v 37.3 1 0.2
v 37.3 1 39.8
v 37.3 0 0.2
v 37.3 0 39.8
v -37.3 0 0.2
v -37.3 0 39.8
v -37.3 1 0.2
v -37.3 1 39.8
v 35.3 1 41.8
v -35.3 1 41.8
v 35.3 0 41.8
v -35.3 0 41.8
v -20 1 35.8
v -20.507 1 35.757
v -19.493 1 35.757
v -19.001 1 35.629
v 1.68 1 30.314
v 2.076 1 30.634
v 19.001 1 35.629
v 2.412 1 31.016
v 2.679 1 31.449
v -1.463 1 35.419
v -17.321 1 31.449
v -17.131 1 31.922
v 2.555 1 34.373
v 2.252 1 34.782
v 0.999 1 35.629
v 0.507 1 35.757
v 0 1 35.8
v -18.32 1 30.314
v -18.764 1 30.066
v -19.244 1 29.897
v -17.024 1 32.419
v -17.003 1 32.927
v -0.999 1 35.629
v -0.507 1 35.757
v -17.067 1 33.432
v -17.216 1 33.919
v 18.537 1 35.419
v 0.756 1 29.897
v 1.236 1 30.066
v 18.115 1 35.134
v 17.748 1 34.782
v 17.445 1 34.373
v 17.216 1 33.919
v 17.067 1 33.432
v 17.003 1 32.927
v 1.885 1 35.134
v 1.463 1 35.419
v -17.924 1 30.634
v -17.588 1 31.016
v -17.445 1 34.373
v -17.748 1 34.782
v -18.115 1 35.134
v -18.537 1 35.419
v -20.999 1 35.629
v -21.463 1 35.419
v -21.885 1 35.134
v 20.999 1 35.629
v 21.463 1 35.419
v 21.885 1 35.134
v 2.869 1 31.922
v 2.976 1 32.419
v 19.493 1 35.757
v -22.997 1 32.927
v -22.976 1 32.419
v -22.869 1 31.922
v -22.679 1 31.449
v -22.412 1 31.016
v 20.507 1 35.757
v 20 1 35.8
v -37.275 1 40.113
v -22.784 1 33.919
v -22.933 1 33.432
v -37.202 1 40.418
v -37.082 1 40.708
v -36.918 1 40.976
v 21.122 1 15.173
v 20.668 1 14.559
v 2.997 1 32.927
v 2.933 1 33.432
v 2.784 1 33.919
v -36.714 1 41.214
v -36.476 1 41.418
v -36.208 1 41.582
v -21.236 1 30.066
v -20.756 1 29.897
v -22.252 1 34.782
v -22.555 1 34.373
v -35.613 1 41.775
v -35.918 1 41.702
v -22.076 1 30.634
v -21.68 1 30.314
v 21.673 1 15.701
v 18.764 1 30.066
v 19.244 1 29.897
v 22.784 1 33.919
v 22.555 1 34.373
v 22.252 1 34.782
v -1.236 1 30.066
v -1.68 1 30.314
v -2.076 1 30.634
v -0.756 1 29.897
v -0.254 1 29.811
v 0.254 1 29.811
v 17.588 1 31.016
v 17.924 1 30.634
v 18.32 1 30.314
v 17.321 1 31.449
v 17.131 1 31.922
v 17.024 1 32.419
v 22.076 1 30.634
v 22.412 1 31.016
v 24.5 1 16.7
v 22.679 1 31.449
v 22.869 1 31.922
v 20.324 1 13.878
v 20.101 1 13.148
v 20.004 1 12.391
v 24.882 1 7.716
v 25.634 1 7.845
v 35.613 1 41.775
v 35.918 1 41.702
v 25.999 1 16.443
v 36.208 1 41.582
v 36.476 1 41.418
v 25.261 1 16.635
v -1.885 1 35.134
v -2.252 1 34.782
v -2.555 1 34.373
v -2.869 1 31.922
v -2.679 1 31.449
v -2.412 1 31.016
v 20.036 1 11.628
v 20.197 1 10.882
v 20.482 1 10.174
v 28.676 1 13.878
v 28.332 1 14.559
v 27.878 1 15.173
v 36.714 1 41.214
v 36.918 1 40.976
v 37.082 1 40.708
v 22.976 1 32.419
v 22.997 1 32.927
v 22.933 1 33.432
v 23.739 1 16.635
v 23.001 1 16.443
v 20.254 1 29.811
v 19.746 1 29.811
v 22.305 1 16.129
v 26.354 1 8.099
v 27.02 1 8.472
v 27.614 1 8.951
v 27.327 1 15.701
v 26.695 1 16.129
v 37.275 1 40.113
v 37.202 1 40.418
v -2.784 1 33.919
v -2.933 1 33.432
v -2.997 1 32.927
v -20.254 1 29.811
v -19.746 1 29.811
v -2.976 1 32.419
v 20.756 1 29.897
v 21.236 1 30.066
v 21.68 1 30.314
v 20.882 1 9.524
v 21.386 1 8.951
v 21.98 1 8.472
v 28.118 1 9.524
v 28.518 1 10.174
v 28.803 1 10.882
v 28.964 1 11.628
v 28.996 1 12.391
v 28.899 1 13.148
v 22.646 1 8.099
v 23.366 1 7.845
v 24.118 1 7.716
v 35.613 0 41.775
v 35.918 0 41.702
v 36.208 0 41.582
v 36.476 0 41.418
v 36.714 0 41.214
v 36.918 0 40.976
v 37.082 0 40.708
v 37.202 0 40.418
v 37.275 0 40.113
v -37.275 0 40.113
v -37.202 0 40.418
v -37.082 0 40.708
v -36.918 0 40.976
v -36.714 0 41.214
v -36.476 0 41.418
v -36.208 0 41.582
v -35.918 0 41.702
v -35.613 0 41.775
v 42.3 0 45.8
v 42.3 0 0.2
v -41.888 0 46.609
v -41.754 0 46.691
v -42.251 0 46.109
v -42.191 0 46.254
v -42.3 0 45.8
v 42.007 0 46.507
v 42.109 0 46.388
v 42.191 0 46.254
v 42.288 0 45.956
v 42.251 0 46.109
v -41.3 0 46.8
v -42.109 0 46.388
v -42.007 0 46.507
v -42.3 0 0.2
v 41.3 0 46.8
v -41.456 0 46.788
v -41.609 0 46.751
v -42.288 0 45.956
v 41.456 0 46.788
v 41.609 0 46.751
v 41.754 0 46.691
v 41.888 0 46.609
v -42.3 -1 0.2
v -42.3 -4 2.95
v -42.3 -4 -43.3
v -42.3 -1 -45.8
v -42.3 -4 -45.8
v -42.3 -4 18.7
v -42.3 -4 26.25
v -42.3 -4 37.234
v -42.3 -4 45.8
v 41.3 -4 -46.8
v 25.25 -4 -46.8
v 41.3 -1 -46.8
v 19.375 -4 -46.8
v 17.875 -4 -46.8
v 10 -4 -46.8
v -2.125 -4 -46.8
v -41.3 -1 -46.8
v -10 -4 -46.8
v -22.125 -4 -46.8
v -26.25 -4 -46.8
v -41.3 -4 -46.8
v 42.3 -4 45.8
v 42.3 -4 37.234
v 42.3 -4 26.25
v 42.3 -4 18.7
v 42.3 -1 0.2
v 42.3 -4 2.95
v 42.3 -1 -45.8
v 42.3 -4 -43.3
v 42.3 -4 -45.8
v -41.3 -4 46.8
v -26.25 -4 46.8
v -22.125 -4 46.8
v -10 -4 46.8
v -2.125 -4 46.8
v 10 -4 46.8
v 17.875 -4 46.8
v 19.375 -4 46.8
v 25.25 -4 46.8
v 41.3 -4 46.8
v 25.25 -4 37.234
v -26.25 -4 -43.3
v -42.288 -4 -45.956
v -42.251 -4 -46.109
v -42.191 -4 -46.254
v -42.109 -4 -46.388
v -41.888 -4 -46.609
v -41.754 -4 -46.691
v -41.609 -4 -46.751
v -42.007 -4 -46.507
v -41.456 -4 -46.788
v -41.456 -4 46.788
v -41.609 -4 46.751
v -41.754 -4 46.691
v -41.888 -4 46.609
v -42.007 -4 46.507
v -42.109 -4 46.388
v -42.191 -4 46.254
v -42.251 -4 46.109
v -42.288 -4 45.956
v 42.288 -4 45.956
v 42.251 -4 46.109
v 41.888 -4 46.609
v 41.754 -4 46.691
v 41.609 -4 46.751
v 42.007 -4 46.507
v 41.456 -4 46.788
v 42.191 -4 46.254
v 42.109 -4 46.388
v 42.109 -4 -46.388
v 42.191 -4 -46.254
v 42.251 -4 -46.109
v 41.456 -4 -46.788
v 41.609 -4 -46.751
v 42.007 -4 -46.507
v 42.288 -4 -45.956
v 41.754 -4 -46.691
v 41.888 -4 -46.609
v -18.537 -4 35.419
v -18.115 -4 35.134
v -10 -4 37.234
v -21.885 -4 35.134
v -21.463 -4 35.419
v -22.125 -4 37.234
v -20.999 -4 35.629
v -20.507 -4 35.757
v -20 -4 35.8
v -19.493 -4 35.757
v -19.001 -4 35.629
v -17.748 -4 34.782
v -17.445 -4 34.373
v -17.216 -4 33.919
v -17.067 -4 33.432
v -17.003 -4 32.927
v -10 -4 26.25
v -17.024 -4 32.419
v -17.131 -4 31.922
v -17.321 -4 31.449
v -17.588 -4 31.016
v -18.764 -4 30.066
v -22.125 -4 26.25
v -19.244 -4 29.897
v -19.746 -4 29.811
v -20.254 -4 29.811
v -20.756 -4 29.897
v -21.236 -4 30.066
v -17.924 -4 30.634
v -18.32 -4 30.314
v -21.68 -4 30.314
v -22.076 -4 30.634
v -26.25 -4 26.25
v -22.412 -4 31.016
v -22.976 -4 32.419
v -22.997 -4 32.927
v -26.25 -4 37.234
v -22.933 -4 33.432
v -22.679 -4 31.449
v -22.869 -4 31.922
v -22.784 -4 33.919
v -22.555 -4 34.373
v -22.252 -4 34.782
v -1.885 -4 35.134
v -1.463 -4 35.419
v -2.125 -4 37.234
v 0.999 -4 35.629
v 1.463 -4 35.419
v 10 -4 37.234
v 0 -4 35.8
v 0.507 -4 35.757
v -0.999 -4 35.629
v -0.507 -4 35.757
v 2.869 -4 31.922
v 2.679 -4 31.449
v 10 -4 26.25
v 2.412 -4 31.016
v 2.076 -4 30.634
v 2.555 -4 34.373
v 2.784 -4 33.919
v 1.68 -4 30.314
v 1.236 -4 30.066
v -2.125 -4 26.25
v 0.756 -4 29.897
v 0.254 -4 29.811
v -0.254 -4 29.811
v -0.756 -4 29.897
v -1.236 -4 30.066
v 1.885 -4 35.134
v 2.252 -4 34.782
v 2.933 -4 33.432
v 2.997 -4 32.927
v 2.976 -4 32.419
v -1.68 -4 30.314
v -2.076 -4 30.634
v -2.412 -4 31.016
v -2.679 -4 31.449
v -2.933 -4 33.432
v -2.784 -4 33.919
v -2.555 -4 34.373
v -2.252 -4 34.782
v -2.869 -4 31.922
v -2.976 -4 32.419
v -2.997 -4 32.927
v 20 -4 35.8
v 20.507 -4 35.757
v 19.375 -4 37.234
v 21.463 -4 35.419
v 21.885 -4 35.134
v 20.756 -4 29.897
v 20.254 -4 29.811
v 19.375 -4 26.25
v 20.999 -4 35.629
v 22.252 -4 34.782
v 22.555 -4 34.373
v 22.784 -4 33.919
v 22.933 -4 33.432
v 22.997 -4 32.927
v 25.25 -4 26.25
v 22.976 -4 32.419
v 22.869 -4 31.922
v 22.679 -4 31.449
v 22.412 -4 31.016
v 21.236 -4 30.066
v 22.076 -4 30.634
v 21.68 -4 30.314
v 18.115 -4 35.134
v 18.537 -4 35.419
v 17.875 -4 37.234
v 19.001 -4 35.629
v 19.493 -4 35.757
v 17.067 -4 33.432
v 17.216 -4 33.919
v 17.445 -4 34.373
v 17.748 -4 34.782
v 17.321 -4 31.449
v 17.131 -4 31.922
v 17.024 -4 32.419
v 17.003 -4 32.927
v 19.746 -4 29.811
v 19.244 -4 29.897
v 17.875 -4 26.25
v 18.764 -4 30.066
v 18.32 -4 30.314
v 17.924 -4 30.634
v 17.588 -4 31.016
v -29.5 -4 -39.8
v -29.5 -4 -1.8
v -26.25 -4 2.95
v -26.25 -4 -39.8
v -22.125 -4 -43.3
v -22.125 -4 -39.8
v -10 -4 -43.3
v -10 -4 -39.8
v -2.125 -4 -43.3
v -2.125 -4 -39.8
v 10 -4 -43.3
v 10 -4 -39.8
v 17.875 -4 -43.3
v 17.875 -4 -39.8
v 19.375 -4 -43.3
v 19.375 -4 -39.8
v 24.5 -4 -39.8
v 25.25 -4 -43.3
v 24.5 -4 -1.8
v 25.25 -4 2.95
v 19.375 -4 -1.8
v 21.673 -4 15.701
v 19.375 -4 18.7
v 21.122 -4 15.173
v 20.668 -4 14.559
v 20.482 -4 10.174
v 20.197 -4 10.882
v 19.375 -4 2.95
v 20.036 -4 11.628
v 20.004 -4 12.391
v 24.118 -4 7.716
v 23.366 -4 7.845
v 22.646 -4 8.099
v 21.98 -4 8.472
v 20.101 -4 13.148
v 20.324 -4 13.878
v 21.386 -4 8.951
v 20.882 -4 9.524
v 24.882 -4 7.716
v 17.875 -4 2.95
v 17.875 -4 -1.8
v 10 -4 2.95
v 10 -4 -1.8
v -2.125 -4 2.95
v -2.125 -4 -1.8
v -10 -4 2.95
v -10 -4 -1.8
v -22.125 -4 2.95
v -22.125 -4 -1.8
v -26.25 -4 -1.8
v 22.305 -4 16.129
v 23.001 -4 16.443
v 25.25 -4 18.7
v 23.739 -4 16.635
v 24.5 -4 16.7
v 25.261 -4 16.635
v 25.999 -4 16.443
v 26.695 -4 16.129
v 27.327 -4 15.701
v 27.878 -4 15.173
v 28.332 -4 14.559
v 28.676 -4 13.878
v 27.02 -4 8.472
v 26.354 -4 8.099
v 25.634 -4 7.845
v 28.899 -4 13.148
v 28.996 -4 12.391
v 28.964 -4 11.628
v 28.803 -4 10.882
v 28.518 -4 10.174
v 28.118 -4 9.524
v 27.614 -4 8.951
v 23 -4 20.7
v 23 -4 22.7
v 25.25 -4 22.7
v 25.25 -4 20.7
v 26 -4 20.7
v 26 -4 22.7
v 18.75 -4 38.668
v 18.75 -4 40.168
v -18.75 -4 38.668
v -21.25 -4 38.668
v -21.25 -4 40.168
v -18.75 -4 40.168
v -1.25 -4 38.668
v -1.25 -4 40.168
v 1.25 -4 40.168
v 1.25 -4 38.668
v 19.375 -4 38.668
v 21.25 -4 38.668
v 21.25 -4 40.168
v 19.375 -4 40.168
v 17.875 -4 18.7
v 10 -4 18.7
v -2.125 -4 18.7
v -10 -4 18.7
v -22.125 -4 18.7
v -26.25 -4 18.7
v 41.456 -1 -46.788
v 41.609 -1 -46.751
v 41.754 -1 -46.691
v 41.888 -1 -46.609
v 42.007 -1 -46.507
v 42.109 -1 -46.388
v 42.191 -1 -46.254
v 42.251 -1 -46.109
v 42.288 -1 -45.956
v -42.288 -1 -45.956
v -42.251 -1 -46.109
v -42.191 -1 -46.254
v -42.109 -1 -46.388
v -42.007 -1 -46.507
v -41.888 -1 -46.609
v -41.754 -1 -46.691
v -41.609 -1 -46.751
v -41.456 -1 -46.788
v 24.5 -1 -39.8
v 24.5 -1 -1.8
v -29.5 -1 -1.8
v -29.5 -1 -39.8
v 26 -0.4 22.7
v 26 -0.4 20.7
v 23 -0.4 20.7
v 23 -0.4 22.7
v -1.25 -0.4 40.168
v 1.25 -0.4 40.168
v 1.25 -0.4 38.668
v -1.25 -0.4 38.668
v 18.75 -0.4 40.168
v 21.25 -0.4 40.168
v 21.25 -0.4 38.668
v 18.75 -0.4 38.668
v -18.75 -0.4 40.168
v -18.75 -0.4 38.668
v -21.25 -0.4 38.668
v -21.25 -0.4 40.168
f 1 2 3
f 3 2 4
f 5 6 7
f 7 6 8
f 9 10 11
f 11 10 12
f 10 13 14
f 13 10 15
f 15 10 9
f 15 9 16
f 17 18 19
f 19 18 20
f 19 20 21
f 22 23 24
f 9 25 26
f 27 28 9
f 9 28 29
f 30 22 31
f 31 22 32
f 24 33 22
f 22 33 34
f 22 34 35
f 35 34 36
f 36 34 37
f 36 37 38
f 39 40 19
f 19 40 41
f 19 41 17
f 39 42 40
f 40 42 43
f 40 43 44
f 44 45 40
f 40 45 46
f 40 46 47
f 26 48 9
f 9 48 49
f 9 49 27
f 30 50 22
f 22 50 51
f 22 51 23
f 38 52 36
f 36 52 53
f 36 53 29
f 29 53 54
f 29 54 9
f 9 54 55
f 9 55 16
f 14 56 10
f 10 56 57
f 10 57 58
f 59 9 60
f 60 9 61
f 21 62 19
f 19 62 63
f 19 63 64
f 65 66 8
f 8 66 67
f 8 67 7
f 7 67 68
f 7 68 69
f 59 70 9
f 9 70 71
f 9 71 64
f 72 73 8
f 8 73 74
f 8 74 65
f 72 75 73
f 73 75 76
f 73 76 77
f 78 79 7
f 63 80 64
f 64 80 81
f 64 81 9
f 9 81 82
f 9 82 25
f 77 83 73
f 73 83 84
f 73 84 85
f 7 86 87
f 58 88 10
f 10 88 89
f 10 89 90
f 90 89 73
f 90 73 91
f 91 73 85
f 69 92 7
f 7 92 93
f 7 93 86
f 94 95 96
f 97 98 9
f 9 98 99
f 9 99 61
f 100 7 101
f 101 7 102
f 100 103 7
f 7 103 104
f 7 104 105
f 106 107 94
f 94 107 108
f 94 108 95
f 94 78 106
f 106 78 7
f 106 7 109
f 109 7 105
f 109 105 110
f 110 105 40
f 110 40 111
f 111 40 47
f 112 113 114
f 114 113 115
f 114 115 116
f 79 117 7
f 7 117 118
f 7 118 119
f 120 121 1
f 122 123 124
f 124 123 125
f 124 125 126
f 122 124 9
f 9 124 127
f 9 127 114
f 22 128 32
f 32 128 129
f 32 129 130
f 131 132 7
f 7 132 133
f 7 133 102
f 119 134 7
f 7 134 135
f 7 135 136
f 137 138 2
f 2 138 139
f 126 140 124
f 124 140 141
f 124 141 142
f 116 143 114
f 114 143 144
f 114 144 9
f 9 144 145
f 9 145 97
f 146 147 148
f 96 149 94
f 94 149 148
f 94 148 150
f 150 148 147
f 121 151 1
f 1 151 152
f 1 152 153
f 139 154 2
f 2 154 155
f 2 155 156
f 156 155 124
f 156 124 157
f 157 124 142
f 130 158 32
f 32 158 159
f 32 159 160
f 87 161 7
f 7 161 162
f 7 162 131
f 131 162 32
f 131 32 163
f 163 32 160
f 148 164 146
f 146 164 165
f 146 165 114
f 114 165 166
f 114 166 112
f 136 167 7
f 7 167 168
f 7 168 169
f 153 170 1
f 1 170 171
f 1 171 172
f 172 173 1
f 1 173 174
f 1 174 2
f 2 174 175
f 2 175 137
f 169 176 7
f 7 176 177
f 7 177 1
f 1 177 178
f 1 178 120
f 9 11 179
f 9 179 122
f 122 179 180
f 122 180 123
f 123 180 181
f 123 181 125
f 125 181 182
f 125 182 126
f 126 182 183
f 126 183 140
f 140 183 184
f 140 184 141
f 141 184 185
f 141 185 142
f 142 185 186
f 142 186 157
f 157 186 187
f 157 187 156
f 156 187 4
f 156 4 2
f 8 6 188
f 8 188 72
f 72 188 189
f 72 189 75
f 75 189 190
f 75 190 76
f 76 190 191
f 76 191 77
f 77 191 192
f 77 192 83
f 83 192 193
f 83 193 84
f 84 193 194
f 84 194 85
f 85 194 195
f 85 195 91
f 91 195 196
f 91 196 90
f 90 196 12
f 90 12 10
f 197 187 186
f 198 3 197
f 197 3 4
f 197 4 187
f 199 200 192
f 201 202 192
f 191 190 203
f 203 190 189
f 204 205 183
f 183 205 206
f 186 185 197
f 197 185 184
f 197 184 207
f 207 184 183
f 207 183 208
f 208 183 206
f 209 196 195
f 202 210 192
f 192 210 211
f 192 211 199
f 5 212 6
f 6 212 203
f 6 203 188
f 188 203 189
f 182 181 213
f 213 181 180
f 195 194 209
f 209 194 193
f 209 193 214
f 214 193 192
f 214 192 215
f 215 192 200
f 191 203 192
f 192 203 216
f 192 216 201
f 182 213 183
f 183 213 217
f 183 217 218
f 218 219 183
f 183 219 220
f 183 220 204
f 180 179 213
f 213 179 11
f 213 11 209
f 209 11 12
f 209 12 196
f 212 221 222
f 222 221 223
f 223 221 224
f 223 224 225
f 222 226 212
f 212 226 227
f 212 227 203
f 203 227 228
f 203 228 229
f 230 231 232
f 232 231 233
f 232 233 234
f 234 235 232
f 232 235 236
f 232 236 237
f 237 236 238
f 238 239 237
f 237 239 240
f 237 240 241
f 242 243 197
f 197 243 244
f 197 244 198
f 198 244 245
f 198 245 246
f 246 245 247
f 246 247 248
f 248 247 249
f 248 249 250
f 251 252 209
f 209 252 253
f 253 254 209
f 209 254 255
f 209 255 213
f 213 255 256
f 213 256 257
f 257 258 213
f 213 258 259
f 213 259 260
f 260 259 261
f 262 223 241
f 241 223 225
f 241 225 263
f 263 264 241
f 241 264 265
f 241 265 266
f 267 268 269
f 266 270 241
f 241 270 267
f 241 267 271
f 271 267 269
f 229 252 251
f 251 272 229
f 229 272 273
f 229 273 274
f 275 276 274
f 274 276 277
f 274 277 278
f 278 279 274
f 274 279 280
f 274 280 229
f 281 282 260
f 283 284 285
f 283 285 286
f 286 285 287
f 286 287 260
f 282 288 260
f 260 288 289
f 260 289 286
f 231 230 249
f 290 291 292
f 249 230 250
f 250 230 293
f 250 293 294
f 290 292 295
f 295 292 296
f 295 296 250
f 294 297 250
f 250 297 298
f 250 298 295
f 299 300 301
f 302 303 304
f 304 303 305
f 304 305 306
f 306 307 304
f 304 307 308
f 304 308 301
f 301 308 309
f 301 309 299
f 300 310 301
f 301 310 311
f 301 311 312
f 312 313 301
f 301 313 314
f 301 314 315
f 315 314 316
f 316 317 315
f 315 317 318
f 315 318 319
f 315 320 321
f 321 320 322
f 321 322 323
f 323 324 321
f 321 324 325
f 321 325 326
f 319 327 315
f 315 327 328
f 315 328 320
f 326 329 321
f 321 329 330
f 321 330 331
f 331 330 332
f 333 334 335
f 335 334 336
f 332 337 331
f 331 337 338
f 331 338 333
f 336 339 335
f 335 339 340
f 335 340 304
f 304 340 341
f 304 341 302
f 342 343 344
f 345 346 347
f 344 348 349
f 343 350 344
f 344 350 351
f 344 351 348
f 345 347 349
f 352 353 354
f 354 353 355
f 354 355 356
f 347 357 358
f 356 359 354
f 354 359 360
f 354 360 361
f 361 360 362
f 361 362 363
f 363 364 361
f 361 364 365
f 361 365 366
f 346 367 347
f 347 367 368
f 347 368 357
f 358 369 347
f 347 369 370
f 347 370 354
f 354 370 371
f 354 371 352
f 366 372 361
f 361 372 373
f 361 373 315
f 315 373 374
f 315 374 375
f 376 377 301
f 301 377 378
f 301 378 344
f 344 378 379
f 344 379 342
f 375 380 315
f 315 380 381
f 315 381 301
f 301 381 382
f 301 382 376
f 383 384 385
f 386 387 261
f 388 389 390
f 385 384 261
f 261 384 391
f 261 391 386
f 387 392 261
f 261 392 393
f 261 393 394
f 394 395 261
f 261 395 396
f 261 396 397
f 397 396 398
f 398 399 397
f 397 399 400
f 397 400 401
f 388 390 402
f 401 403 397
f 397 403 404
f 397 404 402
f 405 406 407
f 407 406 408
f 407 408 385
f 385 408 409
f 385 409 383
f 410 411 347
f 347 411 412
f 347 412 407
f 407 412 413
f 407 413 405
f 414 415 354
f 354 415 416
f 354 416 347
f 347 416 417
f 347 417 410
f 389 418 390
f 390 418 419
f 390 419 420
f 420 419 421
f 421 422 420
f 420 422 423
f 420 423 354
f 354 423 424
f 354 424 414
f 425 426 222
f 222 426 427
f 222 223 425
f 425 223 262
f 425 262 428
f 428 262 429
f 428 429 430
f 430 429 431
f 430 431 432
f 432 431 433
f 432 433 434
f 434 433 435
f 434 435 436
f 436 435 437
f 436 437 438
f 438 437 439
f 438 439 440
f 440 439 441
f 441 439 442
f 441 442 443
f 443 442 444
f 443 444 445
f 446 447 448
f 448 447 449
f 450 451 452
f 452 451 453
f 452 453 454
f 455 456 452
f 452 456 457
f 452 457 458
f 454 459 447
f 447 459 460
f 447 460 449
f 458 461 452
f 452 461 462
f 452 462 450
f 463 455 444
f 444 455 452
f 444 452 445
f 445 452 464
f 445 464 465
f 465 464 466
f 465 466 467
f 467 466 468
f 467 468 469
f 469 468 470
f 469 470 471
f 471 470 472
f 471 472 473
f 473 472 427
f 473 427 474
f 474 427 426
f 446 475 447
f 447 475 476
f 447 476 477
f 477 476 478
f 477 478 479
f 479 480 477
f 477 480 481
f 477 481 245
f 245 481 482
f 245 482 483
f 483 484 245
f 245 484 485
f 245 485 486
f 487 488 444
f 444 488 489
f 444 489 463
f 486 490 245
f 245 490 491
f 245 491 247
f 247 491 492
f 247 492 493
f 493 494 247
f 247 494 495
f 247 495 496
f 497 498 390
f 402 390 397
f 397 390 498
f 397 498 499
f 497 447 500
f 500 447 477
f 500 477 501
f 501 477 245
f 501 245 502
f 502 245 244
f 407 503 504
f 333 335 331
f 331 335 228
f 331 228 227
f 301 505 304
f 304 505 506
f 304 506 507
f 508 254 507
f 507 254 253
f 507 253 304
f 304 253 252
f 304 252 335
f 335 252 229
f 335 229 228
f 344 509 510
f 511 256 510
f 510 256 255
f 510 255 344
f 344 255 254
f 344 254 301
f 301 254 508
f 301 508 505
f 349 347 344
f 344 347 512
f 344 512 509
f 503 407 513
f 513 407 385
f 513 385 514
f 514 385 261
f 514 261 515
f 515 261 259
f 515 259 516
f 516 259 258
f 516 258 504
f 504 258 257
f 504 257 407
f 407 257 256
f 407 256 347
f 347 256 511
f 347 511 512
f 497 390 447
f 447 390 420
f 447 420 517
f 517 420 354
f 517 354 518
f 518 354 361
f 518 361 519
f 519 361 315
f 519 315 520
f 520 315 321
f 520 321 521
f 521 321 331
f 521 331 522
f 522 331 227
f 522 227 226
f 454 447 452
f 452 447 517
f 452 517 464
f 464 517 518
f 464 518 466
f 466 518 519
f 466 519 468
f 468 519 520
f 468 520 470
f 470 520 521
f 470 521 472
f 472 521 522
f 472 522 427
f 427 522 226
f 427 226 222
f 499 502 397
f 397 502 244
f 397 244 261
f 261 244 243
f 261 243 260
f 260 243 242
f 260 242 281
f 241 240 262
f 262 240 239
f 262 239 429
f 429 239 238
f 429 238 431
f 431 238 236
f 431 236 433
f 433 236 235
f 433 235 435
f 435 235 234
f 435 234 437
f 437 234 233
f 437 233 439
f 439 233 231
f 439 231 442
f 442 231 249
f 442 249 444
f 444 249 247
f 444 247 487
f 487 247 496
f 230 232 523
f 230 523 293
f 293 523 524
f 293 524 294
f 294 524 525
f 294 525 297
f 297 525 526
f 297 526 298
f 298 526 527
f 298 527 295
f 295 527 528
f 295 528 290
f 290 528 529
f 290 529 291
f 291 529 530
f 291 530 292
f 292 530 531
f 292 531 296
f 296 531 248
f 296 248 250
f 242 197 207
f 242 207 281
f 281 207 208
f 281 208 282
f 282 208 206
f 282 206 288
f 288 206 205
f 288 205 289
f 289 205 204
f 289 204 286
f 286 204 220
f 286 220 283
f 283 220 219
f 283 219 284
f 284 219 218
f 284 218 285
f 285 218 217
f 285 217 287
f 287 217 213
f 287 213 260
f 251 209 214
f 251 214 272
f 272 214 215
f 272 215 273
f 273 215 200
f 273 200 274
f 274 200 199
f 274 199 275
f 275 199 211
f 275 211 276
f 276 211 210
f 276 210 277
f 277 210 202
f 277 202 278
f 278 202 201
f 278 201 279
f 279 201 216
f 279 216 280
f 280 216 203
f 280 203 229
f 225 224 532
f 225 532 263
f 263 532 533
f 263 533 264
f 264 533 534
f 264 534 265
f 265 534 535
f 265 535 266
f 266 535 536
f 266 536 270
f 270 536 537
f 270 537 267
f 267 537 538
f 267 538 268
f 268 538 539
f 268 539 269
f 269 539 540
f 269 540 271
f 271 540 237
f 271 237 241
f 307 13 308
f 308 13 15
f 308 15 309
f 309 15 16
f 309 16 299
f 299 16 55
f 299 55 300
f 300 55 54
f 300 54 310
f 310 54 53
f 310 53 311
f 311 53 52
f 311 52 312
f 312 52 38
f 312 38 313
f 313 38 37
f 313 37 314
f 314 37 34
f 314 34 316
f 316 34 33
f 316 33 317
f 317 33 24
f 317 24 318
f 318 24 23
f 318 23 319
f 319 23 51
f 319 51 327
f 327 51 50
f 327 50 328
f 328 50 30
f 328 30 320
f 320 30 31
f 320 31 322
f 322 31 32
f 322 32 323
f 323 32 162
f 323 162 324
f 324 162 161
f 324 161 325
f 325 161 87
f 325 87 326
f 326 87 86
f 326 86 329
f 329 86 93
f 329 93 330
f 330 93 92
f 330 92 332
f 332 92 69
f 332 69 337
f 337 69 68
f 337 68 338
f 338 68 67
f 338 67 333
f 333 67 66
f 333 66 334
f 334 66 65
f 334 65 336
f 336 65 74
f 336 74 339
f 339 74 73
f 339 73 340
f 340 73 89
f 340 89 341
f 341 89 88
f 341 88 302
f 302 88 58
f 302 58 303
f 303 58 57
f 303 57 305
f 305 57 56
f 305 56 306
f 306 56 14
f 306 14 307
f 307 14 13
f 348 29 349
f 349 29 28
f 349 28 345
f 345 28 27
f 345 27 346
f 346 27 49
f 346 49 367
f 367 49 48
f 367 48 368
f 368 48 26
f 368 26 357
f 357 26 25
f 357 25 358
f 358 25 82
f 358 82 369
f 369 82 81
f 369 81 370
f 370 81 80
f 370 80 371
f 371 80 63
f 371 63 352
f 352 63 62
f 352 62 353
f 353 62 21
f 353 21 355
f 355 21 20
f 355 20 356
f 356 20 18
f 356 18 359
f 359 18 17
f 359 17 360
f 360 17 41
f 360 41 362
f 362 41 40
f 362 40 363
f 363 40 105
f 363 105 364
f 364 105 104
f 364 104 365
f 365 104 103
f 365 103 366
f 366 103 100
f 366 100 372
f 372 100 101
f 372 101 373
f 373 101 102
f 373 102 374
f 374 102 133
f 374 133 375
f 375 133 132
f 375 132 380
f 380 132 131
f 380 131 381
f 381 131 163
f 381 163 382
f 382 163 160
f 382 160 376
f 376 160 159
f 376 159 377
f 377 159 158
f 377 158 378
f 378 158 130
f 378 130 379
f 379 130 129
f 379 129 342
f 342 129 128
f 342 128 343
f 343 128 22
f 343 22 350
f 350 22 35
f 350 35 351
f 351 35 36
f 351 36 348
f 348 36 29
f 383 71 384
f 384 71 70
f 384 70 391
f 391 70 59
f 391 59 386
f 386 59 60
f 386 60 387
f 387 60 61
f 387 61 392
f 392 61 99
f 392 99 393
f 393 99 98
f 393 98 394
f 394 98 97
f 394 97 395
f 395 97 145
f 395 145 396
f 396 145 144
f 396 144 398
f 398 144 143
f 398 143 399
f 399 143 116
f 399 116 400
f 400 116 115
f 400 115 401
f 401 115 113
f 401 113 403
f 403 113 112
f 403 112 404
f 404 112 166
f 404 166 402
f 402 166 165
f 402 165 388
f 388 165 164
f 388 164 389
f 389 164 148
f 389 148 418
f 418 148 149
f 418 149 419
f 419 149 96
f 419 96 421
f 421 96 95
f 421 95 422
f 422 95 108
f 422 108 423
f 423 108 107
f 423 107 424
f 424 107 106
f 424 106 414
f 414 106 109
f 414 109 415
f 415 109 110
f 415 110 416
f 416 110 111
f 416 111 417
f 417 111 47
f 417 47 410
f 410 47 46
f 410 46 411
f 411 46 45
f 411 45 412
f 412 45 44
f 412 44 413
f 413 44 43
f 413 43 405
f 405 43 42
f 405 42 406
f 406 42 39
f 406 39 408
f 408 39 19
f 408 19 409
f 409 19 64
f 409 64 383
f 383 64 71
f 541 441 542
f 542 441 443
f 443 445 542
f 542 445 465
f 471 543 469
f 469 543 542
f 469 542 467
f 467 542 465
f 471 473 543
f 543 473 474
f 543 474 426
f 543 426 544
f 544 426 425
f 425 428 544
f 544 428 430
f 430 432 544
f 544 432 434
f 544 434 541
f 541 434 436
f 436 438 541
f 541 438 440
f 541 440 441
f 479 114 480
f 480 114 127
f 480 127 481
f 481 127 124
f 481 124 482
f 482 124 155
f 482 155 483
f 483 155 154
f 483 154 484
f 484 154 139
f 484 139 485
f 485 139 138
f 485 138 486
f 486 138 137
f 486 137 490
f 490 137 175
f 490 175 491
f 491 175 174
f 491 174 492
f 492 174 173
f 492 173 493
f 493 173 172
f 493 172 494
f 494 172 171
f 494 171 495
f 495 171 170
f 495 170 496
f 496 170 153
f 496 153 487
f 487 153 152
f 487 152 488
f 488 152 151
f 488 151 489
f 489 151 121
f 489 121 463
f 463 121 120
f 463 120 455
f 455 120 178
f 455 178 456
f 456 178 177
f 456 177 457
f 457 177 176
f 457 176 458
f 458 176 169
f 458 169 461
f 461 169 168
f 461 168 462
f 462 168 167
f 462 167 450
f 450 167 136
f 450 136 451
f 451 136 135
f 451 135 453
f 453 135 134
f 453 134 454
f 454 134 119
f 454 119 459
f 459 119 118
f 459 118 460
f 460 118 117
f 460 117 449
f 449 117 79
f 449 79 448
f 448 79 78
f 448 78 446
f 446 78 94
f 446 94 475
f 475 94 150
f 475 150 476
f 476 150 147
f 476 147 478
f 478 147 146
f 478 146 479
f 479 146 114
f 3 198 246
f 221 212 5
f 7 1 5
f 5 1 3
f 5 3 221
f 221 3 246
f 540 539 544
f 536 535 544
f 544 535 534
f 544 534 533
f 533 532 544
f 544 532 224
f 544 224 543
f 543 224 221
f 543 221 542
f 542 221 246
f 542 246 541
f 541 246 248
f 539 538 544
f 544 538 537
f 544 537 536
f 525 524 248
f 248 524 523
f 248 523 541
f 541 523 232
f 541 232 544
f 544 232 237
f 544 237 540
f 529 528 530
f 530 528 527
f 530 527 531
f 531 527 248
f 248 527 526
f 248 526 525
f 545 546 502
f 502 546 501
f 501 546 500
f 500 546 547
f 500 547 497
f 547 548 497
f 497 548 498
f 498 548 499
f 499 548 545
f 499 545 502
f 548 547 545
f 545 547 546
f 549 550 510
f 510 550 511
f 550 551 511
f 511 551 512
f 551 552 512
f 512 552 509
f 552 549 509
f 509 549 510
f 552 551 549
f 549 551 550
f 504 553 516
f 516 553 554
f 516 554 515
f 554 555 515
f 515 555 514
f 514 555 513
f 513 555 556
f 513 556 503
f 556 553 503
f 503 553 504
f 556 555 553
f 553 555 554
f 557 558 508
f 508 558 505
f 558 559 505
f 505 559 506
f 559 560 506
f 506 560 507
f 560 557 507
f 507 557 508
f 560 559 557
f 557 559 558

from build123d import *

# Parameters (mm, degrees)
SKETCH_1_W          = 74.6
SKETCH_1_H          = 83.6
EXTRUDE_1_DEPTH     = 1
FILLET_1_R          = 2
SKETCH_2_W          = 84.6
SKETCH_2_H          = 93.6
EXTRUDE_2_DEPTH     = 4
FILLET_2_R          = 1
SKETCH_3_R          = 3
SKETCH_3_R_2        = 4.5
SKETCH_3_W          = 54
SKETCH_3_H          = 38
CUT_EXTRUDE_1_DEPTH = 64.281355864
SKETCH_4_W          = 84.6
SKETCH_4_H          = 47
CUT_EXTRUDE_2_DEPTH = 2
SKETCH_5_W          = 2.5
SKETCH_5_H          = 1.5
SKETCH_5_W_2        = 3
SKETCH_5_H_2        = 2
CUT_EXTRUDE_3_DEPTH = 3.6


with BuildPart() as part:
    # Эскиз1 → Бобышка-Вытянуть1 (new body)
    with BuildSketch(Plane(origin=(0, 0, 0), x_dir=(1, 0, 0), z_dir=(0, 1, 0))):
        Rectangle(SKETCH_1_W, SKETCH_1_H)
    extrude(amount=EXTRUDE_1_DEPTH)

    # Скругление1
    fillet_1_edges = [part.edges().sort_by_distance(p)[0] for p in [
        (37.3, 0.5, 41.8),
        (-37.3, 0.5, 41.8),
        (-37.3, 0.5, -41.8),
        (37.3, 0.5, -41.8),
    ]]
    fillet(fillet_1_edges, radius=FILLET_1_R)

    # Эскиз2 → Бобышка-Вытянуть2 (add)
    with BuildSketch(Plane.XZ):
        Rectangle(SKETCH_2_W, SKETCH_2_H)
    extrude(amount=EXTRUDE_2_DEPTH)

    # Скругление2
    fillet_2_edges = [part.edges().sort_by_distance(p)[0] for p in [
        (-42.3, -2, 46.8),
        (-42.3, -2, -46.8),
        (42.3, -2, -46.8),
        (42.3, -2, 46.8),
    ]]
    fillet(fillet_2_edges, radius=FILLET_2_R)

    # Эскиз3 → Вырез-Вытянуть1 (cut, through all)
    with BuildSketch(Plane(origin=(0, 1, 0), x_dir=(1, 0, 0), z_dir=(0, 1, 0))):
        with Locations(Location((-20, -32.8, 0), (0, 0, 270))):
            Circle(SKETCH_3_R)
        with Locations(Location((0, -32.8, 0), (0, 0, 270))):
            Circle(SKETCH_3_R)
        with Locations(Location((20, -32.8, 0), (0, 0, 270))):
            Circle(SKETCH_3_R)
        with Locations(Location((24.5, -12.2, 0), (0, 0, 270))):
            Circle(SKETCH_3_R_2)
        with Locations((-2.5, 20.8)):
            Rectangle(SKETCH_3_W, SKETCH_3_H)
    extrude(amount=-CUT_EXTRUDE_1_DEPTH, mode=Mode.SUBTRACT)

    # Эскиз4 → Вырез-Вытянуть2 (cut)
    with BuildSketch(Plane(origin=(0, 1, 0), x_dir=(1, 0, 0), z_dir=(0, 1, 0))):
        with Locations((0, 23.3)):
            Rectangle(SKETCH_4_W, SKETCH_4_H)
    extrude(amount=-CUT_EXTRUDE_2_DEPTH, mode=Mode.SUBTRACT)

    # Эскиз5 → Вырез-Вытянуть3 (cut)
    with BuildSketch(Plane.XZ.offset(4)):
        with Locations((-20, 39.418347297)):
            Rectangle(SKETCH_5_W, SKETCH_5_H)
        with Locations((0, 39.418347297)):
            Rectangle(SKETCH_5_W, SKETCH_5_H)
        with Locations((20, 39.418347297)):
            Rectangle(SKETCH_5_W, SKETCH_5_H)
        with Locations((24.5, 21.7)):
            Rectangle(SKETCH_5_W_2, SKETCH_5_H_2)
    extrude(amount=-CUT_EXTRUDE_3_DEPTH, mode=Mode.SUBTRACT)


solid = part.part
